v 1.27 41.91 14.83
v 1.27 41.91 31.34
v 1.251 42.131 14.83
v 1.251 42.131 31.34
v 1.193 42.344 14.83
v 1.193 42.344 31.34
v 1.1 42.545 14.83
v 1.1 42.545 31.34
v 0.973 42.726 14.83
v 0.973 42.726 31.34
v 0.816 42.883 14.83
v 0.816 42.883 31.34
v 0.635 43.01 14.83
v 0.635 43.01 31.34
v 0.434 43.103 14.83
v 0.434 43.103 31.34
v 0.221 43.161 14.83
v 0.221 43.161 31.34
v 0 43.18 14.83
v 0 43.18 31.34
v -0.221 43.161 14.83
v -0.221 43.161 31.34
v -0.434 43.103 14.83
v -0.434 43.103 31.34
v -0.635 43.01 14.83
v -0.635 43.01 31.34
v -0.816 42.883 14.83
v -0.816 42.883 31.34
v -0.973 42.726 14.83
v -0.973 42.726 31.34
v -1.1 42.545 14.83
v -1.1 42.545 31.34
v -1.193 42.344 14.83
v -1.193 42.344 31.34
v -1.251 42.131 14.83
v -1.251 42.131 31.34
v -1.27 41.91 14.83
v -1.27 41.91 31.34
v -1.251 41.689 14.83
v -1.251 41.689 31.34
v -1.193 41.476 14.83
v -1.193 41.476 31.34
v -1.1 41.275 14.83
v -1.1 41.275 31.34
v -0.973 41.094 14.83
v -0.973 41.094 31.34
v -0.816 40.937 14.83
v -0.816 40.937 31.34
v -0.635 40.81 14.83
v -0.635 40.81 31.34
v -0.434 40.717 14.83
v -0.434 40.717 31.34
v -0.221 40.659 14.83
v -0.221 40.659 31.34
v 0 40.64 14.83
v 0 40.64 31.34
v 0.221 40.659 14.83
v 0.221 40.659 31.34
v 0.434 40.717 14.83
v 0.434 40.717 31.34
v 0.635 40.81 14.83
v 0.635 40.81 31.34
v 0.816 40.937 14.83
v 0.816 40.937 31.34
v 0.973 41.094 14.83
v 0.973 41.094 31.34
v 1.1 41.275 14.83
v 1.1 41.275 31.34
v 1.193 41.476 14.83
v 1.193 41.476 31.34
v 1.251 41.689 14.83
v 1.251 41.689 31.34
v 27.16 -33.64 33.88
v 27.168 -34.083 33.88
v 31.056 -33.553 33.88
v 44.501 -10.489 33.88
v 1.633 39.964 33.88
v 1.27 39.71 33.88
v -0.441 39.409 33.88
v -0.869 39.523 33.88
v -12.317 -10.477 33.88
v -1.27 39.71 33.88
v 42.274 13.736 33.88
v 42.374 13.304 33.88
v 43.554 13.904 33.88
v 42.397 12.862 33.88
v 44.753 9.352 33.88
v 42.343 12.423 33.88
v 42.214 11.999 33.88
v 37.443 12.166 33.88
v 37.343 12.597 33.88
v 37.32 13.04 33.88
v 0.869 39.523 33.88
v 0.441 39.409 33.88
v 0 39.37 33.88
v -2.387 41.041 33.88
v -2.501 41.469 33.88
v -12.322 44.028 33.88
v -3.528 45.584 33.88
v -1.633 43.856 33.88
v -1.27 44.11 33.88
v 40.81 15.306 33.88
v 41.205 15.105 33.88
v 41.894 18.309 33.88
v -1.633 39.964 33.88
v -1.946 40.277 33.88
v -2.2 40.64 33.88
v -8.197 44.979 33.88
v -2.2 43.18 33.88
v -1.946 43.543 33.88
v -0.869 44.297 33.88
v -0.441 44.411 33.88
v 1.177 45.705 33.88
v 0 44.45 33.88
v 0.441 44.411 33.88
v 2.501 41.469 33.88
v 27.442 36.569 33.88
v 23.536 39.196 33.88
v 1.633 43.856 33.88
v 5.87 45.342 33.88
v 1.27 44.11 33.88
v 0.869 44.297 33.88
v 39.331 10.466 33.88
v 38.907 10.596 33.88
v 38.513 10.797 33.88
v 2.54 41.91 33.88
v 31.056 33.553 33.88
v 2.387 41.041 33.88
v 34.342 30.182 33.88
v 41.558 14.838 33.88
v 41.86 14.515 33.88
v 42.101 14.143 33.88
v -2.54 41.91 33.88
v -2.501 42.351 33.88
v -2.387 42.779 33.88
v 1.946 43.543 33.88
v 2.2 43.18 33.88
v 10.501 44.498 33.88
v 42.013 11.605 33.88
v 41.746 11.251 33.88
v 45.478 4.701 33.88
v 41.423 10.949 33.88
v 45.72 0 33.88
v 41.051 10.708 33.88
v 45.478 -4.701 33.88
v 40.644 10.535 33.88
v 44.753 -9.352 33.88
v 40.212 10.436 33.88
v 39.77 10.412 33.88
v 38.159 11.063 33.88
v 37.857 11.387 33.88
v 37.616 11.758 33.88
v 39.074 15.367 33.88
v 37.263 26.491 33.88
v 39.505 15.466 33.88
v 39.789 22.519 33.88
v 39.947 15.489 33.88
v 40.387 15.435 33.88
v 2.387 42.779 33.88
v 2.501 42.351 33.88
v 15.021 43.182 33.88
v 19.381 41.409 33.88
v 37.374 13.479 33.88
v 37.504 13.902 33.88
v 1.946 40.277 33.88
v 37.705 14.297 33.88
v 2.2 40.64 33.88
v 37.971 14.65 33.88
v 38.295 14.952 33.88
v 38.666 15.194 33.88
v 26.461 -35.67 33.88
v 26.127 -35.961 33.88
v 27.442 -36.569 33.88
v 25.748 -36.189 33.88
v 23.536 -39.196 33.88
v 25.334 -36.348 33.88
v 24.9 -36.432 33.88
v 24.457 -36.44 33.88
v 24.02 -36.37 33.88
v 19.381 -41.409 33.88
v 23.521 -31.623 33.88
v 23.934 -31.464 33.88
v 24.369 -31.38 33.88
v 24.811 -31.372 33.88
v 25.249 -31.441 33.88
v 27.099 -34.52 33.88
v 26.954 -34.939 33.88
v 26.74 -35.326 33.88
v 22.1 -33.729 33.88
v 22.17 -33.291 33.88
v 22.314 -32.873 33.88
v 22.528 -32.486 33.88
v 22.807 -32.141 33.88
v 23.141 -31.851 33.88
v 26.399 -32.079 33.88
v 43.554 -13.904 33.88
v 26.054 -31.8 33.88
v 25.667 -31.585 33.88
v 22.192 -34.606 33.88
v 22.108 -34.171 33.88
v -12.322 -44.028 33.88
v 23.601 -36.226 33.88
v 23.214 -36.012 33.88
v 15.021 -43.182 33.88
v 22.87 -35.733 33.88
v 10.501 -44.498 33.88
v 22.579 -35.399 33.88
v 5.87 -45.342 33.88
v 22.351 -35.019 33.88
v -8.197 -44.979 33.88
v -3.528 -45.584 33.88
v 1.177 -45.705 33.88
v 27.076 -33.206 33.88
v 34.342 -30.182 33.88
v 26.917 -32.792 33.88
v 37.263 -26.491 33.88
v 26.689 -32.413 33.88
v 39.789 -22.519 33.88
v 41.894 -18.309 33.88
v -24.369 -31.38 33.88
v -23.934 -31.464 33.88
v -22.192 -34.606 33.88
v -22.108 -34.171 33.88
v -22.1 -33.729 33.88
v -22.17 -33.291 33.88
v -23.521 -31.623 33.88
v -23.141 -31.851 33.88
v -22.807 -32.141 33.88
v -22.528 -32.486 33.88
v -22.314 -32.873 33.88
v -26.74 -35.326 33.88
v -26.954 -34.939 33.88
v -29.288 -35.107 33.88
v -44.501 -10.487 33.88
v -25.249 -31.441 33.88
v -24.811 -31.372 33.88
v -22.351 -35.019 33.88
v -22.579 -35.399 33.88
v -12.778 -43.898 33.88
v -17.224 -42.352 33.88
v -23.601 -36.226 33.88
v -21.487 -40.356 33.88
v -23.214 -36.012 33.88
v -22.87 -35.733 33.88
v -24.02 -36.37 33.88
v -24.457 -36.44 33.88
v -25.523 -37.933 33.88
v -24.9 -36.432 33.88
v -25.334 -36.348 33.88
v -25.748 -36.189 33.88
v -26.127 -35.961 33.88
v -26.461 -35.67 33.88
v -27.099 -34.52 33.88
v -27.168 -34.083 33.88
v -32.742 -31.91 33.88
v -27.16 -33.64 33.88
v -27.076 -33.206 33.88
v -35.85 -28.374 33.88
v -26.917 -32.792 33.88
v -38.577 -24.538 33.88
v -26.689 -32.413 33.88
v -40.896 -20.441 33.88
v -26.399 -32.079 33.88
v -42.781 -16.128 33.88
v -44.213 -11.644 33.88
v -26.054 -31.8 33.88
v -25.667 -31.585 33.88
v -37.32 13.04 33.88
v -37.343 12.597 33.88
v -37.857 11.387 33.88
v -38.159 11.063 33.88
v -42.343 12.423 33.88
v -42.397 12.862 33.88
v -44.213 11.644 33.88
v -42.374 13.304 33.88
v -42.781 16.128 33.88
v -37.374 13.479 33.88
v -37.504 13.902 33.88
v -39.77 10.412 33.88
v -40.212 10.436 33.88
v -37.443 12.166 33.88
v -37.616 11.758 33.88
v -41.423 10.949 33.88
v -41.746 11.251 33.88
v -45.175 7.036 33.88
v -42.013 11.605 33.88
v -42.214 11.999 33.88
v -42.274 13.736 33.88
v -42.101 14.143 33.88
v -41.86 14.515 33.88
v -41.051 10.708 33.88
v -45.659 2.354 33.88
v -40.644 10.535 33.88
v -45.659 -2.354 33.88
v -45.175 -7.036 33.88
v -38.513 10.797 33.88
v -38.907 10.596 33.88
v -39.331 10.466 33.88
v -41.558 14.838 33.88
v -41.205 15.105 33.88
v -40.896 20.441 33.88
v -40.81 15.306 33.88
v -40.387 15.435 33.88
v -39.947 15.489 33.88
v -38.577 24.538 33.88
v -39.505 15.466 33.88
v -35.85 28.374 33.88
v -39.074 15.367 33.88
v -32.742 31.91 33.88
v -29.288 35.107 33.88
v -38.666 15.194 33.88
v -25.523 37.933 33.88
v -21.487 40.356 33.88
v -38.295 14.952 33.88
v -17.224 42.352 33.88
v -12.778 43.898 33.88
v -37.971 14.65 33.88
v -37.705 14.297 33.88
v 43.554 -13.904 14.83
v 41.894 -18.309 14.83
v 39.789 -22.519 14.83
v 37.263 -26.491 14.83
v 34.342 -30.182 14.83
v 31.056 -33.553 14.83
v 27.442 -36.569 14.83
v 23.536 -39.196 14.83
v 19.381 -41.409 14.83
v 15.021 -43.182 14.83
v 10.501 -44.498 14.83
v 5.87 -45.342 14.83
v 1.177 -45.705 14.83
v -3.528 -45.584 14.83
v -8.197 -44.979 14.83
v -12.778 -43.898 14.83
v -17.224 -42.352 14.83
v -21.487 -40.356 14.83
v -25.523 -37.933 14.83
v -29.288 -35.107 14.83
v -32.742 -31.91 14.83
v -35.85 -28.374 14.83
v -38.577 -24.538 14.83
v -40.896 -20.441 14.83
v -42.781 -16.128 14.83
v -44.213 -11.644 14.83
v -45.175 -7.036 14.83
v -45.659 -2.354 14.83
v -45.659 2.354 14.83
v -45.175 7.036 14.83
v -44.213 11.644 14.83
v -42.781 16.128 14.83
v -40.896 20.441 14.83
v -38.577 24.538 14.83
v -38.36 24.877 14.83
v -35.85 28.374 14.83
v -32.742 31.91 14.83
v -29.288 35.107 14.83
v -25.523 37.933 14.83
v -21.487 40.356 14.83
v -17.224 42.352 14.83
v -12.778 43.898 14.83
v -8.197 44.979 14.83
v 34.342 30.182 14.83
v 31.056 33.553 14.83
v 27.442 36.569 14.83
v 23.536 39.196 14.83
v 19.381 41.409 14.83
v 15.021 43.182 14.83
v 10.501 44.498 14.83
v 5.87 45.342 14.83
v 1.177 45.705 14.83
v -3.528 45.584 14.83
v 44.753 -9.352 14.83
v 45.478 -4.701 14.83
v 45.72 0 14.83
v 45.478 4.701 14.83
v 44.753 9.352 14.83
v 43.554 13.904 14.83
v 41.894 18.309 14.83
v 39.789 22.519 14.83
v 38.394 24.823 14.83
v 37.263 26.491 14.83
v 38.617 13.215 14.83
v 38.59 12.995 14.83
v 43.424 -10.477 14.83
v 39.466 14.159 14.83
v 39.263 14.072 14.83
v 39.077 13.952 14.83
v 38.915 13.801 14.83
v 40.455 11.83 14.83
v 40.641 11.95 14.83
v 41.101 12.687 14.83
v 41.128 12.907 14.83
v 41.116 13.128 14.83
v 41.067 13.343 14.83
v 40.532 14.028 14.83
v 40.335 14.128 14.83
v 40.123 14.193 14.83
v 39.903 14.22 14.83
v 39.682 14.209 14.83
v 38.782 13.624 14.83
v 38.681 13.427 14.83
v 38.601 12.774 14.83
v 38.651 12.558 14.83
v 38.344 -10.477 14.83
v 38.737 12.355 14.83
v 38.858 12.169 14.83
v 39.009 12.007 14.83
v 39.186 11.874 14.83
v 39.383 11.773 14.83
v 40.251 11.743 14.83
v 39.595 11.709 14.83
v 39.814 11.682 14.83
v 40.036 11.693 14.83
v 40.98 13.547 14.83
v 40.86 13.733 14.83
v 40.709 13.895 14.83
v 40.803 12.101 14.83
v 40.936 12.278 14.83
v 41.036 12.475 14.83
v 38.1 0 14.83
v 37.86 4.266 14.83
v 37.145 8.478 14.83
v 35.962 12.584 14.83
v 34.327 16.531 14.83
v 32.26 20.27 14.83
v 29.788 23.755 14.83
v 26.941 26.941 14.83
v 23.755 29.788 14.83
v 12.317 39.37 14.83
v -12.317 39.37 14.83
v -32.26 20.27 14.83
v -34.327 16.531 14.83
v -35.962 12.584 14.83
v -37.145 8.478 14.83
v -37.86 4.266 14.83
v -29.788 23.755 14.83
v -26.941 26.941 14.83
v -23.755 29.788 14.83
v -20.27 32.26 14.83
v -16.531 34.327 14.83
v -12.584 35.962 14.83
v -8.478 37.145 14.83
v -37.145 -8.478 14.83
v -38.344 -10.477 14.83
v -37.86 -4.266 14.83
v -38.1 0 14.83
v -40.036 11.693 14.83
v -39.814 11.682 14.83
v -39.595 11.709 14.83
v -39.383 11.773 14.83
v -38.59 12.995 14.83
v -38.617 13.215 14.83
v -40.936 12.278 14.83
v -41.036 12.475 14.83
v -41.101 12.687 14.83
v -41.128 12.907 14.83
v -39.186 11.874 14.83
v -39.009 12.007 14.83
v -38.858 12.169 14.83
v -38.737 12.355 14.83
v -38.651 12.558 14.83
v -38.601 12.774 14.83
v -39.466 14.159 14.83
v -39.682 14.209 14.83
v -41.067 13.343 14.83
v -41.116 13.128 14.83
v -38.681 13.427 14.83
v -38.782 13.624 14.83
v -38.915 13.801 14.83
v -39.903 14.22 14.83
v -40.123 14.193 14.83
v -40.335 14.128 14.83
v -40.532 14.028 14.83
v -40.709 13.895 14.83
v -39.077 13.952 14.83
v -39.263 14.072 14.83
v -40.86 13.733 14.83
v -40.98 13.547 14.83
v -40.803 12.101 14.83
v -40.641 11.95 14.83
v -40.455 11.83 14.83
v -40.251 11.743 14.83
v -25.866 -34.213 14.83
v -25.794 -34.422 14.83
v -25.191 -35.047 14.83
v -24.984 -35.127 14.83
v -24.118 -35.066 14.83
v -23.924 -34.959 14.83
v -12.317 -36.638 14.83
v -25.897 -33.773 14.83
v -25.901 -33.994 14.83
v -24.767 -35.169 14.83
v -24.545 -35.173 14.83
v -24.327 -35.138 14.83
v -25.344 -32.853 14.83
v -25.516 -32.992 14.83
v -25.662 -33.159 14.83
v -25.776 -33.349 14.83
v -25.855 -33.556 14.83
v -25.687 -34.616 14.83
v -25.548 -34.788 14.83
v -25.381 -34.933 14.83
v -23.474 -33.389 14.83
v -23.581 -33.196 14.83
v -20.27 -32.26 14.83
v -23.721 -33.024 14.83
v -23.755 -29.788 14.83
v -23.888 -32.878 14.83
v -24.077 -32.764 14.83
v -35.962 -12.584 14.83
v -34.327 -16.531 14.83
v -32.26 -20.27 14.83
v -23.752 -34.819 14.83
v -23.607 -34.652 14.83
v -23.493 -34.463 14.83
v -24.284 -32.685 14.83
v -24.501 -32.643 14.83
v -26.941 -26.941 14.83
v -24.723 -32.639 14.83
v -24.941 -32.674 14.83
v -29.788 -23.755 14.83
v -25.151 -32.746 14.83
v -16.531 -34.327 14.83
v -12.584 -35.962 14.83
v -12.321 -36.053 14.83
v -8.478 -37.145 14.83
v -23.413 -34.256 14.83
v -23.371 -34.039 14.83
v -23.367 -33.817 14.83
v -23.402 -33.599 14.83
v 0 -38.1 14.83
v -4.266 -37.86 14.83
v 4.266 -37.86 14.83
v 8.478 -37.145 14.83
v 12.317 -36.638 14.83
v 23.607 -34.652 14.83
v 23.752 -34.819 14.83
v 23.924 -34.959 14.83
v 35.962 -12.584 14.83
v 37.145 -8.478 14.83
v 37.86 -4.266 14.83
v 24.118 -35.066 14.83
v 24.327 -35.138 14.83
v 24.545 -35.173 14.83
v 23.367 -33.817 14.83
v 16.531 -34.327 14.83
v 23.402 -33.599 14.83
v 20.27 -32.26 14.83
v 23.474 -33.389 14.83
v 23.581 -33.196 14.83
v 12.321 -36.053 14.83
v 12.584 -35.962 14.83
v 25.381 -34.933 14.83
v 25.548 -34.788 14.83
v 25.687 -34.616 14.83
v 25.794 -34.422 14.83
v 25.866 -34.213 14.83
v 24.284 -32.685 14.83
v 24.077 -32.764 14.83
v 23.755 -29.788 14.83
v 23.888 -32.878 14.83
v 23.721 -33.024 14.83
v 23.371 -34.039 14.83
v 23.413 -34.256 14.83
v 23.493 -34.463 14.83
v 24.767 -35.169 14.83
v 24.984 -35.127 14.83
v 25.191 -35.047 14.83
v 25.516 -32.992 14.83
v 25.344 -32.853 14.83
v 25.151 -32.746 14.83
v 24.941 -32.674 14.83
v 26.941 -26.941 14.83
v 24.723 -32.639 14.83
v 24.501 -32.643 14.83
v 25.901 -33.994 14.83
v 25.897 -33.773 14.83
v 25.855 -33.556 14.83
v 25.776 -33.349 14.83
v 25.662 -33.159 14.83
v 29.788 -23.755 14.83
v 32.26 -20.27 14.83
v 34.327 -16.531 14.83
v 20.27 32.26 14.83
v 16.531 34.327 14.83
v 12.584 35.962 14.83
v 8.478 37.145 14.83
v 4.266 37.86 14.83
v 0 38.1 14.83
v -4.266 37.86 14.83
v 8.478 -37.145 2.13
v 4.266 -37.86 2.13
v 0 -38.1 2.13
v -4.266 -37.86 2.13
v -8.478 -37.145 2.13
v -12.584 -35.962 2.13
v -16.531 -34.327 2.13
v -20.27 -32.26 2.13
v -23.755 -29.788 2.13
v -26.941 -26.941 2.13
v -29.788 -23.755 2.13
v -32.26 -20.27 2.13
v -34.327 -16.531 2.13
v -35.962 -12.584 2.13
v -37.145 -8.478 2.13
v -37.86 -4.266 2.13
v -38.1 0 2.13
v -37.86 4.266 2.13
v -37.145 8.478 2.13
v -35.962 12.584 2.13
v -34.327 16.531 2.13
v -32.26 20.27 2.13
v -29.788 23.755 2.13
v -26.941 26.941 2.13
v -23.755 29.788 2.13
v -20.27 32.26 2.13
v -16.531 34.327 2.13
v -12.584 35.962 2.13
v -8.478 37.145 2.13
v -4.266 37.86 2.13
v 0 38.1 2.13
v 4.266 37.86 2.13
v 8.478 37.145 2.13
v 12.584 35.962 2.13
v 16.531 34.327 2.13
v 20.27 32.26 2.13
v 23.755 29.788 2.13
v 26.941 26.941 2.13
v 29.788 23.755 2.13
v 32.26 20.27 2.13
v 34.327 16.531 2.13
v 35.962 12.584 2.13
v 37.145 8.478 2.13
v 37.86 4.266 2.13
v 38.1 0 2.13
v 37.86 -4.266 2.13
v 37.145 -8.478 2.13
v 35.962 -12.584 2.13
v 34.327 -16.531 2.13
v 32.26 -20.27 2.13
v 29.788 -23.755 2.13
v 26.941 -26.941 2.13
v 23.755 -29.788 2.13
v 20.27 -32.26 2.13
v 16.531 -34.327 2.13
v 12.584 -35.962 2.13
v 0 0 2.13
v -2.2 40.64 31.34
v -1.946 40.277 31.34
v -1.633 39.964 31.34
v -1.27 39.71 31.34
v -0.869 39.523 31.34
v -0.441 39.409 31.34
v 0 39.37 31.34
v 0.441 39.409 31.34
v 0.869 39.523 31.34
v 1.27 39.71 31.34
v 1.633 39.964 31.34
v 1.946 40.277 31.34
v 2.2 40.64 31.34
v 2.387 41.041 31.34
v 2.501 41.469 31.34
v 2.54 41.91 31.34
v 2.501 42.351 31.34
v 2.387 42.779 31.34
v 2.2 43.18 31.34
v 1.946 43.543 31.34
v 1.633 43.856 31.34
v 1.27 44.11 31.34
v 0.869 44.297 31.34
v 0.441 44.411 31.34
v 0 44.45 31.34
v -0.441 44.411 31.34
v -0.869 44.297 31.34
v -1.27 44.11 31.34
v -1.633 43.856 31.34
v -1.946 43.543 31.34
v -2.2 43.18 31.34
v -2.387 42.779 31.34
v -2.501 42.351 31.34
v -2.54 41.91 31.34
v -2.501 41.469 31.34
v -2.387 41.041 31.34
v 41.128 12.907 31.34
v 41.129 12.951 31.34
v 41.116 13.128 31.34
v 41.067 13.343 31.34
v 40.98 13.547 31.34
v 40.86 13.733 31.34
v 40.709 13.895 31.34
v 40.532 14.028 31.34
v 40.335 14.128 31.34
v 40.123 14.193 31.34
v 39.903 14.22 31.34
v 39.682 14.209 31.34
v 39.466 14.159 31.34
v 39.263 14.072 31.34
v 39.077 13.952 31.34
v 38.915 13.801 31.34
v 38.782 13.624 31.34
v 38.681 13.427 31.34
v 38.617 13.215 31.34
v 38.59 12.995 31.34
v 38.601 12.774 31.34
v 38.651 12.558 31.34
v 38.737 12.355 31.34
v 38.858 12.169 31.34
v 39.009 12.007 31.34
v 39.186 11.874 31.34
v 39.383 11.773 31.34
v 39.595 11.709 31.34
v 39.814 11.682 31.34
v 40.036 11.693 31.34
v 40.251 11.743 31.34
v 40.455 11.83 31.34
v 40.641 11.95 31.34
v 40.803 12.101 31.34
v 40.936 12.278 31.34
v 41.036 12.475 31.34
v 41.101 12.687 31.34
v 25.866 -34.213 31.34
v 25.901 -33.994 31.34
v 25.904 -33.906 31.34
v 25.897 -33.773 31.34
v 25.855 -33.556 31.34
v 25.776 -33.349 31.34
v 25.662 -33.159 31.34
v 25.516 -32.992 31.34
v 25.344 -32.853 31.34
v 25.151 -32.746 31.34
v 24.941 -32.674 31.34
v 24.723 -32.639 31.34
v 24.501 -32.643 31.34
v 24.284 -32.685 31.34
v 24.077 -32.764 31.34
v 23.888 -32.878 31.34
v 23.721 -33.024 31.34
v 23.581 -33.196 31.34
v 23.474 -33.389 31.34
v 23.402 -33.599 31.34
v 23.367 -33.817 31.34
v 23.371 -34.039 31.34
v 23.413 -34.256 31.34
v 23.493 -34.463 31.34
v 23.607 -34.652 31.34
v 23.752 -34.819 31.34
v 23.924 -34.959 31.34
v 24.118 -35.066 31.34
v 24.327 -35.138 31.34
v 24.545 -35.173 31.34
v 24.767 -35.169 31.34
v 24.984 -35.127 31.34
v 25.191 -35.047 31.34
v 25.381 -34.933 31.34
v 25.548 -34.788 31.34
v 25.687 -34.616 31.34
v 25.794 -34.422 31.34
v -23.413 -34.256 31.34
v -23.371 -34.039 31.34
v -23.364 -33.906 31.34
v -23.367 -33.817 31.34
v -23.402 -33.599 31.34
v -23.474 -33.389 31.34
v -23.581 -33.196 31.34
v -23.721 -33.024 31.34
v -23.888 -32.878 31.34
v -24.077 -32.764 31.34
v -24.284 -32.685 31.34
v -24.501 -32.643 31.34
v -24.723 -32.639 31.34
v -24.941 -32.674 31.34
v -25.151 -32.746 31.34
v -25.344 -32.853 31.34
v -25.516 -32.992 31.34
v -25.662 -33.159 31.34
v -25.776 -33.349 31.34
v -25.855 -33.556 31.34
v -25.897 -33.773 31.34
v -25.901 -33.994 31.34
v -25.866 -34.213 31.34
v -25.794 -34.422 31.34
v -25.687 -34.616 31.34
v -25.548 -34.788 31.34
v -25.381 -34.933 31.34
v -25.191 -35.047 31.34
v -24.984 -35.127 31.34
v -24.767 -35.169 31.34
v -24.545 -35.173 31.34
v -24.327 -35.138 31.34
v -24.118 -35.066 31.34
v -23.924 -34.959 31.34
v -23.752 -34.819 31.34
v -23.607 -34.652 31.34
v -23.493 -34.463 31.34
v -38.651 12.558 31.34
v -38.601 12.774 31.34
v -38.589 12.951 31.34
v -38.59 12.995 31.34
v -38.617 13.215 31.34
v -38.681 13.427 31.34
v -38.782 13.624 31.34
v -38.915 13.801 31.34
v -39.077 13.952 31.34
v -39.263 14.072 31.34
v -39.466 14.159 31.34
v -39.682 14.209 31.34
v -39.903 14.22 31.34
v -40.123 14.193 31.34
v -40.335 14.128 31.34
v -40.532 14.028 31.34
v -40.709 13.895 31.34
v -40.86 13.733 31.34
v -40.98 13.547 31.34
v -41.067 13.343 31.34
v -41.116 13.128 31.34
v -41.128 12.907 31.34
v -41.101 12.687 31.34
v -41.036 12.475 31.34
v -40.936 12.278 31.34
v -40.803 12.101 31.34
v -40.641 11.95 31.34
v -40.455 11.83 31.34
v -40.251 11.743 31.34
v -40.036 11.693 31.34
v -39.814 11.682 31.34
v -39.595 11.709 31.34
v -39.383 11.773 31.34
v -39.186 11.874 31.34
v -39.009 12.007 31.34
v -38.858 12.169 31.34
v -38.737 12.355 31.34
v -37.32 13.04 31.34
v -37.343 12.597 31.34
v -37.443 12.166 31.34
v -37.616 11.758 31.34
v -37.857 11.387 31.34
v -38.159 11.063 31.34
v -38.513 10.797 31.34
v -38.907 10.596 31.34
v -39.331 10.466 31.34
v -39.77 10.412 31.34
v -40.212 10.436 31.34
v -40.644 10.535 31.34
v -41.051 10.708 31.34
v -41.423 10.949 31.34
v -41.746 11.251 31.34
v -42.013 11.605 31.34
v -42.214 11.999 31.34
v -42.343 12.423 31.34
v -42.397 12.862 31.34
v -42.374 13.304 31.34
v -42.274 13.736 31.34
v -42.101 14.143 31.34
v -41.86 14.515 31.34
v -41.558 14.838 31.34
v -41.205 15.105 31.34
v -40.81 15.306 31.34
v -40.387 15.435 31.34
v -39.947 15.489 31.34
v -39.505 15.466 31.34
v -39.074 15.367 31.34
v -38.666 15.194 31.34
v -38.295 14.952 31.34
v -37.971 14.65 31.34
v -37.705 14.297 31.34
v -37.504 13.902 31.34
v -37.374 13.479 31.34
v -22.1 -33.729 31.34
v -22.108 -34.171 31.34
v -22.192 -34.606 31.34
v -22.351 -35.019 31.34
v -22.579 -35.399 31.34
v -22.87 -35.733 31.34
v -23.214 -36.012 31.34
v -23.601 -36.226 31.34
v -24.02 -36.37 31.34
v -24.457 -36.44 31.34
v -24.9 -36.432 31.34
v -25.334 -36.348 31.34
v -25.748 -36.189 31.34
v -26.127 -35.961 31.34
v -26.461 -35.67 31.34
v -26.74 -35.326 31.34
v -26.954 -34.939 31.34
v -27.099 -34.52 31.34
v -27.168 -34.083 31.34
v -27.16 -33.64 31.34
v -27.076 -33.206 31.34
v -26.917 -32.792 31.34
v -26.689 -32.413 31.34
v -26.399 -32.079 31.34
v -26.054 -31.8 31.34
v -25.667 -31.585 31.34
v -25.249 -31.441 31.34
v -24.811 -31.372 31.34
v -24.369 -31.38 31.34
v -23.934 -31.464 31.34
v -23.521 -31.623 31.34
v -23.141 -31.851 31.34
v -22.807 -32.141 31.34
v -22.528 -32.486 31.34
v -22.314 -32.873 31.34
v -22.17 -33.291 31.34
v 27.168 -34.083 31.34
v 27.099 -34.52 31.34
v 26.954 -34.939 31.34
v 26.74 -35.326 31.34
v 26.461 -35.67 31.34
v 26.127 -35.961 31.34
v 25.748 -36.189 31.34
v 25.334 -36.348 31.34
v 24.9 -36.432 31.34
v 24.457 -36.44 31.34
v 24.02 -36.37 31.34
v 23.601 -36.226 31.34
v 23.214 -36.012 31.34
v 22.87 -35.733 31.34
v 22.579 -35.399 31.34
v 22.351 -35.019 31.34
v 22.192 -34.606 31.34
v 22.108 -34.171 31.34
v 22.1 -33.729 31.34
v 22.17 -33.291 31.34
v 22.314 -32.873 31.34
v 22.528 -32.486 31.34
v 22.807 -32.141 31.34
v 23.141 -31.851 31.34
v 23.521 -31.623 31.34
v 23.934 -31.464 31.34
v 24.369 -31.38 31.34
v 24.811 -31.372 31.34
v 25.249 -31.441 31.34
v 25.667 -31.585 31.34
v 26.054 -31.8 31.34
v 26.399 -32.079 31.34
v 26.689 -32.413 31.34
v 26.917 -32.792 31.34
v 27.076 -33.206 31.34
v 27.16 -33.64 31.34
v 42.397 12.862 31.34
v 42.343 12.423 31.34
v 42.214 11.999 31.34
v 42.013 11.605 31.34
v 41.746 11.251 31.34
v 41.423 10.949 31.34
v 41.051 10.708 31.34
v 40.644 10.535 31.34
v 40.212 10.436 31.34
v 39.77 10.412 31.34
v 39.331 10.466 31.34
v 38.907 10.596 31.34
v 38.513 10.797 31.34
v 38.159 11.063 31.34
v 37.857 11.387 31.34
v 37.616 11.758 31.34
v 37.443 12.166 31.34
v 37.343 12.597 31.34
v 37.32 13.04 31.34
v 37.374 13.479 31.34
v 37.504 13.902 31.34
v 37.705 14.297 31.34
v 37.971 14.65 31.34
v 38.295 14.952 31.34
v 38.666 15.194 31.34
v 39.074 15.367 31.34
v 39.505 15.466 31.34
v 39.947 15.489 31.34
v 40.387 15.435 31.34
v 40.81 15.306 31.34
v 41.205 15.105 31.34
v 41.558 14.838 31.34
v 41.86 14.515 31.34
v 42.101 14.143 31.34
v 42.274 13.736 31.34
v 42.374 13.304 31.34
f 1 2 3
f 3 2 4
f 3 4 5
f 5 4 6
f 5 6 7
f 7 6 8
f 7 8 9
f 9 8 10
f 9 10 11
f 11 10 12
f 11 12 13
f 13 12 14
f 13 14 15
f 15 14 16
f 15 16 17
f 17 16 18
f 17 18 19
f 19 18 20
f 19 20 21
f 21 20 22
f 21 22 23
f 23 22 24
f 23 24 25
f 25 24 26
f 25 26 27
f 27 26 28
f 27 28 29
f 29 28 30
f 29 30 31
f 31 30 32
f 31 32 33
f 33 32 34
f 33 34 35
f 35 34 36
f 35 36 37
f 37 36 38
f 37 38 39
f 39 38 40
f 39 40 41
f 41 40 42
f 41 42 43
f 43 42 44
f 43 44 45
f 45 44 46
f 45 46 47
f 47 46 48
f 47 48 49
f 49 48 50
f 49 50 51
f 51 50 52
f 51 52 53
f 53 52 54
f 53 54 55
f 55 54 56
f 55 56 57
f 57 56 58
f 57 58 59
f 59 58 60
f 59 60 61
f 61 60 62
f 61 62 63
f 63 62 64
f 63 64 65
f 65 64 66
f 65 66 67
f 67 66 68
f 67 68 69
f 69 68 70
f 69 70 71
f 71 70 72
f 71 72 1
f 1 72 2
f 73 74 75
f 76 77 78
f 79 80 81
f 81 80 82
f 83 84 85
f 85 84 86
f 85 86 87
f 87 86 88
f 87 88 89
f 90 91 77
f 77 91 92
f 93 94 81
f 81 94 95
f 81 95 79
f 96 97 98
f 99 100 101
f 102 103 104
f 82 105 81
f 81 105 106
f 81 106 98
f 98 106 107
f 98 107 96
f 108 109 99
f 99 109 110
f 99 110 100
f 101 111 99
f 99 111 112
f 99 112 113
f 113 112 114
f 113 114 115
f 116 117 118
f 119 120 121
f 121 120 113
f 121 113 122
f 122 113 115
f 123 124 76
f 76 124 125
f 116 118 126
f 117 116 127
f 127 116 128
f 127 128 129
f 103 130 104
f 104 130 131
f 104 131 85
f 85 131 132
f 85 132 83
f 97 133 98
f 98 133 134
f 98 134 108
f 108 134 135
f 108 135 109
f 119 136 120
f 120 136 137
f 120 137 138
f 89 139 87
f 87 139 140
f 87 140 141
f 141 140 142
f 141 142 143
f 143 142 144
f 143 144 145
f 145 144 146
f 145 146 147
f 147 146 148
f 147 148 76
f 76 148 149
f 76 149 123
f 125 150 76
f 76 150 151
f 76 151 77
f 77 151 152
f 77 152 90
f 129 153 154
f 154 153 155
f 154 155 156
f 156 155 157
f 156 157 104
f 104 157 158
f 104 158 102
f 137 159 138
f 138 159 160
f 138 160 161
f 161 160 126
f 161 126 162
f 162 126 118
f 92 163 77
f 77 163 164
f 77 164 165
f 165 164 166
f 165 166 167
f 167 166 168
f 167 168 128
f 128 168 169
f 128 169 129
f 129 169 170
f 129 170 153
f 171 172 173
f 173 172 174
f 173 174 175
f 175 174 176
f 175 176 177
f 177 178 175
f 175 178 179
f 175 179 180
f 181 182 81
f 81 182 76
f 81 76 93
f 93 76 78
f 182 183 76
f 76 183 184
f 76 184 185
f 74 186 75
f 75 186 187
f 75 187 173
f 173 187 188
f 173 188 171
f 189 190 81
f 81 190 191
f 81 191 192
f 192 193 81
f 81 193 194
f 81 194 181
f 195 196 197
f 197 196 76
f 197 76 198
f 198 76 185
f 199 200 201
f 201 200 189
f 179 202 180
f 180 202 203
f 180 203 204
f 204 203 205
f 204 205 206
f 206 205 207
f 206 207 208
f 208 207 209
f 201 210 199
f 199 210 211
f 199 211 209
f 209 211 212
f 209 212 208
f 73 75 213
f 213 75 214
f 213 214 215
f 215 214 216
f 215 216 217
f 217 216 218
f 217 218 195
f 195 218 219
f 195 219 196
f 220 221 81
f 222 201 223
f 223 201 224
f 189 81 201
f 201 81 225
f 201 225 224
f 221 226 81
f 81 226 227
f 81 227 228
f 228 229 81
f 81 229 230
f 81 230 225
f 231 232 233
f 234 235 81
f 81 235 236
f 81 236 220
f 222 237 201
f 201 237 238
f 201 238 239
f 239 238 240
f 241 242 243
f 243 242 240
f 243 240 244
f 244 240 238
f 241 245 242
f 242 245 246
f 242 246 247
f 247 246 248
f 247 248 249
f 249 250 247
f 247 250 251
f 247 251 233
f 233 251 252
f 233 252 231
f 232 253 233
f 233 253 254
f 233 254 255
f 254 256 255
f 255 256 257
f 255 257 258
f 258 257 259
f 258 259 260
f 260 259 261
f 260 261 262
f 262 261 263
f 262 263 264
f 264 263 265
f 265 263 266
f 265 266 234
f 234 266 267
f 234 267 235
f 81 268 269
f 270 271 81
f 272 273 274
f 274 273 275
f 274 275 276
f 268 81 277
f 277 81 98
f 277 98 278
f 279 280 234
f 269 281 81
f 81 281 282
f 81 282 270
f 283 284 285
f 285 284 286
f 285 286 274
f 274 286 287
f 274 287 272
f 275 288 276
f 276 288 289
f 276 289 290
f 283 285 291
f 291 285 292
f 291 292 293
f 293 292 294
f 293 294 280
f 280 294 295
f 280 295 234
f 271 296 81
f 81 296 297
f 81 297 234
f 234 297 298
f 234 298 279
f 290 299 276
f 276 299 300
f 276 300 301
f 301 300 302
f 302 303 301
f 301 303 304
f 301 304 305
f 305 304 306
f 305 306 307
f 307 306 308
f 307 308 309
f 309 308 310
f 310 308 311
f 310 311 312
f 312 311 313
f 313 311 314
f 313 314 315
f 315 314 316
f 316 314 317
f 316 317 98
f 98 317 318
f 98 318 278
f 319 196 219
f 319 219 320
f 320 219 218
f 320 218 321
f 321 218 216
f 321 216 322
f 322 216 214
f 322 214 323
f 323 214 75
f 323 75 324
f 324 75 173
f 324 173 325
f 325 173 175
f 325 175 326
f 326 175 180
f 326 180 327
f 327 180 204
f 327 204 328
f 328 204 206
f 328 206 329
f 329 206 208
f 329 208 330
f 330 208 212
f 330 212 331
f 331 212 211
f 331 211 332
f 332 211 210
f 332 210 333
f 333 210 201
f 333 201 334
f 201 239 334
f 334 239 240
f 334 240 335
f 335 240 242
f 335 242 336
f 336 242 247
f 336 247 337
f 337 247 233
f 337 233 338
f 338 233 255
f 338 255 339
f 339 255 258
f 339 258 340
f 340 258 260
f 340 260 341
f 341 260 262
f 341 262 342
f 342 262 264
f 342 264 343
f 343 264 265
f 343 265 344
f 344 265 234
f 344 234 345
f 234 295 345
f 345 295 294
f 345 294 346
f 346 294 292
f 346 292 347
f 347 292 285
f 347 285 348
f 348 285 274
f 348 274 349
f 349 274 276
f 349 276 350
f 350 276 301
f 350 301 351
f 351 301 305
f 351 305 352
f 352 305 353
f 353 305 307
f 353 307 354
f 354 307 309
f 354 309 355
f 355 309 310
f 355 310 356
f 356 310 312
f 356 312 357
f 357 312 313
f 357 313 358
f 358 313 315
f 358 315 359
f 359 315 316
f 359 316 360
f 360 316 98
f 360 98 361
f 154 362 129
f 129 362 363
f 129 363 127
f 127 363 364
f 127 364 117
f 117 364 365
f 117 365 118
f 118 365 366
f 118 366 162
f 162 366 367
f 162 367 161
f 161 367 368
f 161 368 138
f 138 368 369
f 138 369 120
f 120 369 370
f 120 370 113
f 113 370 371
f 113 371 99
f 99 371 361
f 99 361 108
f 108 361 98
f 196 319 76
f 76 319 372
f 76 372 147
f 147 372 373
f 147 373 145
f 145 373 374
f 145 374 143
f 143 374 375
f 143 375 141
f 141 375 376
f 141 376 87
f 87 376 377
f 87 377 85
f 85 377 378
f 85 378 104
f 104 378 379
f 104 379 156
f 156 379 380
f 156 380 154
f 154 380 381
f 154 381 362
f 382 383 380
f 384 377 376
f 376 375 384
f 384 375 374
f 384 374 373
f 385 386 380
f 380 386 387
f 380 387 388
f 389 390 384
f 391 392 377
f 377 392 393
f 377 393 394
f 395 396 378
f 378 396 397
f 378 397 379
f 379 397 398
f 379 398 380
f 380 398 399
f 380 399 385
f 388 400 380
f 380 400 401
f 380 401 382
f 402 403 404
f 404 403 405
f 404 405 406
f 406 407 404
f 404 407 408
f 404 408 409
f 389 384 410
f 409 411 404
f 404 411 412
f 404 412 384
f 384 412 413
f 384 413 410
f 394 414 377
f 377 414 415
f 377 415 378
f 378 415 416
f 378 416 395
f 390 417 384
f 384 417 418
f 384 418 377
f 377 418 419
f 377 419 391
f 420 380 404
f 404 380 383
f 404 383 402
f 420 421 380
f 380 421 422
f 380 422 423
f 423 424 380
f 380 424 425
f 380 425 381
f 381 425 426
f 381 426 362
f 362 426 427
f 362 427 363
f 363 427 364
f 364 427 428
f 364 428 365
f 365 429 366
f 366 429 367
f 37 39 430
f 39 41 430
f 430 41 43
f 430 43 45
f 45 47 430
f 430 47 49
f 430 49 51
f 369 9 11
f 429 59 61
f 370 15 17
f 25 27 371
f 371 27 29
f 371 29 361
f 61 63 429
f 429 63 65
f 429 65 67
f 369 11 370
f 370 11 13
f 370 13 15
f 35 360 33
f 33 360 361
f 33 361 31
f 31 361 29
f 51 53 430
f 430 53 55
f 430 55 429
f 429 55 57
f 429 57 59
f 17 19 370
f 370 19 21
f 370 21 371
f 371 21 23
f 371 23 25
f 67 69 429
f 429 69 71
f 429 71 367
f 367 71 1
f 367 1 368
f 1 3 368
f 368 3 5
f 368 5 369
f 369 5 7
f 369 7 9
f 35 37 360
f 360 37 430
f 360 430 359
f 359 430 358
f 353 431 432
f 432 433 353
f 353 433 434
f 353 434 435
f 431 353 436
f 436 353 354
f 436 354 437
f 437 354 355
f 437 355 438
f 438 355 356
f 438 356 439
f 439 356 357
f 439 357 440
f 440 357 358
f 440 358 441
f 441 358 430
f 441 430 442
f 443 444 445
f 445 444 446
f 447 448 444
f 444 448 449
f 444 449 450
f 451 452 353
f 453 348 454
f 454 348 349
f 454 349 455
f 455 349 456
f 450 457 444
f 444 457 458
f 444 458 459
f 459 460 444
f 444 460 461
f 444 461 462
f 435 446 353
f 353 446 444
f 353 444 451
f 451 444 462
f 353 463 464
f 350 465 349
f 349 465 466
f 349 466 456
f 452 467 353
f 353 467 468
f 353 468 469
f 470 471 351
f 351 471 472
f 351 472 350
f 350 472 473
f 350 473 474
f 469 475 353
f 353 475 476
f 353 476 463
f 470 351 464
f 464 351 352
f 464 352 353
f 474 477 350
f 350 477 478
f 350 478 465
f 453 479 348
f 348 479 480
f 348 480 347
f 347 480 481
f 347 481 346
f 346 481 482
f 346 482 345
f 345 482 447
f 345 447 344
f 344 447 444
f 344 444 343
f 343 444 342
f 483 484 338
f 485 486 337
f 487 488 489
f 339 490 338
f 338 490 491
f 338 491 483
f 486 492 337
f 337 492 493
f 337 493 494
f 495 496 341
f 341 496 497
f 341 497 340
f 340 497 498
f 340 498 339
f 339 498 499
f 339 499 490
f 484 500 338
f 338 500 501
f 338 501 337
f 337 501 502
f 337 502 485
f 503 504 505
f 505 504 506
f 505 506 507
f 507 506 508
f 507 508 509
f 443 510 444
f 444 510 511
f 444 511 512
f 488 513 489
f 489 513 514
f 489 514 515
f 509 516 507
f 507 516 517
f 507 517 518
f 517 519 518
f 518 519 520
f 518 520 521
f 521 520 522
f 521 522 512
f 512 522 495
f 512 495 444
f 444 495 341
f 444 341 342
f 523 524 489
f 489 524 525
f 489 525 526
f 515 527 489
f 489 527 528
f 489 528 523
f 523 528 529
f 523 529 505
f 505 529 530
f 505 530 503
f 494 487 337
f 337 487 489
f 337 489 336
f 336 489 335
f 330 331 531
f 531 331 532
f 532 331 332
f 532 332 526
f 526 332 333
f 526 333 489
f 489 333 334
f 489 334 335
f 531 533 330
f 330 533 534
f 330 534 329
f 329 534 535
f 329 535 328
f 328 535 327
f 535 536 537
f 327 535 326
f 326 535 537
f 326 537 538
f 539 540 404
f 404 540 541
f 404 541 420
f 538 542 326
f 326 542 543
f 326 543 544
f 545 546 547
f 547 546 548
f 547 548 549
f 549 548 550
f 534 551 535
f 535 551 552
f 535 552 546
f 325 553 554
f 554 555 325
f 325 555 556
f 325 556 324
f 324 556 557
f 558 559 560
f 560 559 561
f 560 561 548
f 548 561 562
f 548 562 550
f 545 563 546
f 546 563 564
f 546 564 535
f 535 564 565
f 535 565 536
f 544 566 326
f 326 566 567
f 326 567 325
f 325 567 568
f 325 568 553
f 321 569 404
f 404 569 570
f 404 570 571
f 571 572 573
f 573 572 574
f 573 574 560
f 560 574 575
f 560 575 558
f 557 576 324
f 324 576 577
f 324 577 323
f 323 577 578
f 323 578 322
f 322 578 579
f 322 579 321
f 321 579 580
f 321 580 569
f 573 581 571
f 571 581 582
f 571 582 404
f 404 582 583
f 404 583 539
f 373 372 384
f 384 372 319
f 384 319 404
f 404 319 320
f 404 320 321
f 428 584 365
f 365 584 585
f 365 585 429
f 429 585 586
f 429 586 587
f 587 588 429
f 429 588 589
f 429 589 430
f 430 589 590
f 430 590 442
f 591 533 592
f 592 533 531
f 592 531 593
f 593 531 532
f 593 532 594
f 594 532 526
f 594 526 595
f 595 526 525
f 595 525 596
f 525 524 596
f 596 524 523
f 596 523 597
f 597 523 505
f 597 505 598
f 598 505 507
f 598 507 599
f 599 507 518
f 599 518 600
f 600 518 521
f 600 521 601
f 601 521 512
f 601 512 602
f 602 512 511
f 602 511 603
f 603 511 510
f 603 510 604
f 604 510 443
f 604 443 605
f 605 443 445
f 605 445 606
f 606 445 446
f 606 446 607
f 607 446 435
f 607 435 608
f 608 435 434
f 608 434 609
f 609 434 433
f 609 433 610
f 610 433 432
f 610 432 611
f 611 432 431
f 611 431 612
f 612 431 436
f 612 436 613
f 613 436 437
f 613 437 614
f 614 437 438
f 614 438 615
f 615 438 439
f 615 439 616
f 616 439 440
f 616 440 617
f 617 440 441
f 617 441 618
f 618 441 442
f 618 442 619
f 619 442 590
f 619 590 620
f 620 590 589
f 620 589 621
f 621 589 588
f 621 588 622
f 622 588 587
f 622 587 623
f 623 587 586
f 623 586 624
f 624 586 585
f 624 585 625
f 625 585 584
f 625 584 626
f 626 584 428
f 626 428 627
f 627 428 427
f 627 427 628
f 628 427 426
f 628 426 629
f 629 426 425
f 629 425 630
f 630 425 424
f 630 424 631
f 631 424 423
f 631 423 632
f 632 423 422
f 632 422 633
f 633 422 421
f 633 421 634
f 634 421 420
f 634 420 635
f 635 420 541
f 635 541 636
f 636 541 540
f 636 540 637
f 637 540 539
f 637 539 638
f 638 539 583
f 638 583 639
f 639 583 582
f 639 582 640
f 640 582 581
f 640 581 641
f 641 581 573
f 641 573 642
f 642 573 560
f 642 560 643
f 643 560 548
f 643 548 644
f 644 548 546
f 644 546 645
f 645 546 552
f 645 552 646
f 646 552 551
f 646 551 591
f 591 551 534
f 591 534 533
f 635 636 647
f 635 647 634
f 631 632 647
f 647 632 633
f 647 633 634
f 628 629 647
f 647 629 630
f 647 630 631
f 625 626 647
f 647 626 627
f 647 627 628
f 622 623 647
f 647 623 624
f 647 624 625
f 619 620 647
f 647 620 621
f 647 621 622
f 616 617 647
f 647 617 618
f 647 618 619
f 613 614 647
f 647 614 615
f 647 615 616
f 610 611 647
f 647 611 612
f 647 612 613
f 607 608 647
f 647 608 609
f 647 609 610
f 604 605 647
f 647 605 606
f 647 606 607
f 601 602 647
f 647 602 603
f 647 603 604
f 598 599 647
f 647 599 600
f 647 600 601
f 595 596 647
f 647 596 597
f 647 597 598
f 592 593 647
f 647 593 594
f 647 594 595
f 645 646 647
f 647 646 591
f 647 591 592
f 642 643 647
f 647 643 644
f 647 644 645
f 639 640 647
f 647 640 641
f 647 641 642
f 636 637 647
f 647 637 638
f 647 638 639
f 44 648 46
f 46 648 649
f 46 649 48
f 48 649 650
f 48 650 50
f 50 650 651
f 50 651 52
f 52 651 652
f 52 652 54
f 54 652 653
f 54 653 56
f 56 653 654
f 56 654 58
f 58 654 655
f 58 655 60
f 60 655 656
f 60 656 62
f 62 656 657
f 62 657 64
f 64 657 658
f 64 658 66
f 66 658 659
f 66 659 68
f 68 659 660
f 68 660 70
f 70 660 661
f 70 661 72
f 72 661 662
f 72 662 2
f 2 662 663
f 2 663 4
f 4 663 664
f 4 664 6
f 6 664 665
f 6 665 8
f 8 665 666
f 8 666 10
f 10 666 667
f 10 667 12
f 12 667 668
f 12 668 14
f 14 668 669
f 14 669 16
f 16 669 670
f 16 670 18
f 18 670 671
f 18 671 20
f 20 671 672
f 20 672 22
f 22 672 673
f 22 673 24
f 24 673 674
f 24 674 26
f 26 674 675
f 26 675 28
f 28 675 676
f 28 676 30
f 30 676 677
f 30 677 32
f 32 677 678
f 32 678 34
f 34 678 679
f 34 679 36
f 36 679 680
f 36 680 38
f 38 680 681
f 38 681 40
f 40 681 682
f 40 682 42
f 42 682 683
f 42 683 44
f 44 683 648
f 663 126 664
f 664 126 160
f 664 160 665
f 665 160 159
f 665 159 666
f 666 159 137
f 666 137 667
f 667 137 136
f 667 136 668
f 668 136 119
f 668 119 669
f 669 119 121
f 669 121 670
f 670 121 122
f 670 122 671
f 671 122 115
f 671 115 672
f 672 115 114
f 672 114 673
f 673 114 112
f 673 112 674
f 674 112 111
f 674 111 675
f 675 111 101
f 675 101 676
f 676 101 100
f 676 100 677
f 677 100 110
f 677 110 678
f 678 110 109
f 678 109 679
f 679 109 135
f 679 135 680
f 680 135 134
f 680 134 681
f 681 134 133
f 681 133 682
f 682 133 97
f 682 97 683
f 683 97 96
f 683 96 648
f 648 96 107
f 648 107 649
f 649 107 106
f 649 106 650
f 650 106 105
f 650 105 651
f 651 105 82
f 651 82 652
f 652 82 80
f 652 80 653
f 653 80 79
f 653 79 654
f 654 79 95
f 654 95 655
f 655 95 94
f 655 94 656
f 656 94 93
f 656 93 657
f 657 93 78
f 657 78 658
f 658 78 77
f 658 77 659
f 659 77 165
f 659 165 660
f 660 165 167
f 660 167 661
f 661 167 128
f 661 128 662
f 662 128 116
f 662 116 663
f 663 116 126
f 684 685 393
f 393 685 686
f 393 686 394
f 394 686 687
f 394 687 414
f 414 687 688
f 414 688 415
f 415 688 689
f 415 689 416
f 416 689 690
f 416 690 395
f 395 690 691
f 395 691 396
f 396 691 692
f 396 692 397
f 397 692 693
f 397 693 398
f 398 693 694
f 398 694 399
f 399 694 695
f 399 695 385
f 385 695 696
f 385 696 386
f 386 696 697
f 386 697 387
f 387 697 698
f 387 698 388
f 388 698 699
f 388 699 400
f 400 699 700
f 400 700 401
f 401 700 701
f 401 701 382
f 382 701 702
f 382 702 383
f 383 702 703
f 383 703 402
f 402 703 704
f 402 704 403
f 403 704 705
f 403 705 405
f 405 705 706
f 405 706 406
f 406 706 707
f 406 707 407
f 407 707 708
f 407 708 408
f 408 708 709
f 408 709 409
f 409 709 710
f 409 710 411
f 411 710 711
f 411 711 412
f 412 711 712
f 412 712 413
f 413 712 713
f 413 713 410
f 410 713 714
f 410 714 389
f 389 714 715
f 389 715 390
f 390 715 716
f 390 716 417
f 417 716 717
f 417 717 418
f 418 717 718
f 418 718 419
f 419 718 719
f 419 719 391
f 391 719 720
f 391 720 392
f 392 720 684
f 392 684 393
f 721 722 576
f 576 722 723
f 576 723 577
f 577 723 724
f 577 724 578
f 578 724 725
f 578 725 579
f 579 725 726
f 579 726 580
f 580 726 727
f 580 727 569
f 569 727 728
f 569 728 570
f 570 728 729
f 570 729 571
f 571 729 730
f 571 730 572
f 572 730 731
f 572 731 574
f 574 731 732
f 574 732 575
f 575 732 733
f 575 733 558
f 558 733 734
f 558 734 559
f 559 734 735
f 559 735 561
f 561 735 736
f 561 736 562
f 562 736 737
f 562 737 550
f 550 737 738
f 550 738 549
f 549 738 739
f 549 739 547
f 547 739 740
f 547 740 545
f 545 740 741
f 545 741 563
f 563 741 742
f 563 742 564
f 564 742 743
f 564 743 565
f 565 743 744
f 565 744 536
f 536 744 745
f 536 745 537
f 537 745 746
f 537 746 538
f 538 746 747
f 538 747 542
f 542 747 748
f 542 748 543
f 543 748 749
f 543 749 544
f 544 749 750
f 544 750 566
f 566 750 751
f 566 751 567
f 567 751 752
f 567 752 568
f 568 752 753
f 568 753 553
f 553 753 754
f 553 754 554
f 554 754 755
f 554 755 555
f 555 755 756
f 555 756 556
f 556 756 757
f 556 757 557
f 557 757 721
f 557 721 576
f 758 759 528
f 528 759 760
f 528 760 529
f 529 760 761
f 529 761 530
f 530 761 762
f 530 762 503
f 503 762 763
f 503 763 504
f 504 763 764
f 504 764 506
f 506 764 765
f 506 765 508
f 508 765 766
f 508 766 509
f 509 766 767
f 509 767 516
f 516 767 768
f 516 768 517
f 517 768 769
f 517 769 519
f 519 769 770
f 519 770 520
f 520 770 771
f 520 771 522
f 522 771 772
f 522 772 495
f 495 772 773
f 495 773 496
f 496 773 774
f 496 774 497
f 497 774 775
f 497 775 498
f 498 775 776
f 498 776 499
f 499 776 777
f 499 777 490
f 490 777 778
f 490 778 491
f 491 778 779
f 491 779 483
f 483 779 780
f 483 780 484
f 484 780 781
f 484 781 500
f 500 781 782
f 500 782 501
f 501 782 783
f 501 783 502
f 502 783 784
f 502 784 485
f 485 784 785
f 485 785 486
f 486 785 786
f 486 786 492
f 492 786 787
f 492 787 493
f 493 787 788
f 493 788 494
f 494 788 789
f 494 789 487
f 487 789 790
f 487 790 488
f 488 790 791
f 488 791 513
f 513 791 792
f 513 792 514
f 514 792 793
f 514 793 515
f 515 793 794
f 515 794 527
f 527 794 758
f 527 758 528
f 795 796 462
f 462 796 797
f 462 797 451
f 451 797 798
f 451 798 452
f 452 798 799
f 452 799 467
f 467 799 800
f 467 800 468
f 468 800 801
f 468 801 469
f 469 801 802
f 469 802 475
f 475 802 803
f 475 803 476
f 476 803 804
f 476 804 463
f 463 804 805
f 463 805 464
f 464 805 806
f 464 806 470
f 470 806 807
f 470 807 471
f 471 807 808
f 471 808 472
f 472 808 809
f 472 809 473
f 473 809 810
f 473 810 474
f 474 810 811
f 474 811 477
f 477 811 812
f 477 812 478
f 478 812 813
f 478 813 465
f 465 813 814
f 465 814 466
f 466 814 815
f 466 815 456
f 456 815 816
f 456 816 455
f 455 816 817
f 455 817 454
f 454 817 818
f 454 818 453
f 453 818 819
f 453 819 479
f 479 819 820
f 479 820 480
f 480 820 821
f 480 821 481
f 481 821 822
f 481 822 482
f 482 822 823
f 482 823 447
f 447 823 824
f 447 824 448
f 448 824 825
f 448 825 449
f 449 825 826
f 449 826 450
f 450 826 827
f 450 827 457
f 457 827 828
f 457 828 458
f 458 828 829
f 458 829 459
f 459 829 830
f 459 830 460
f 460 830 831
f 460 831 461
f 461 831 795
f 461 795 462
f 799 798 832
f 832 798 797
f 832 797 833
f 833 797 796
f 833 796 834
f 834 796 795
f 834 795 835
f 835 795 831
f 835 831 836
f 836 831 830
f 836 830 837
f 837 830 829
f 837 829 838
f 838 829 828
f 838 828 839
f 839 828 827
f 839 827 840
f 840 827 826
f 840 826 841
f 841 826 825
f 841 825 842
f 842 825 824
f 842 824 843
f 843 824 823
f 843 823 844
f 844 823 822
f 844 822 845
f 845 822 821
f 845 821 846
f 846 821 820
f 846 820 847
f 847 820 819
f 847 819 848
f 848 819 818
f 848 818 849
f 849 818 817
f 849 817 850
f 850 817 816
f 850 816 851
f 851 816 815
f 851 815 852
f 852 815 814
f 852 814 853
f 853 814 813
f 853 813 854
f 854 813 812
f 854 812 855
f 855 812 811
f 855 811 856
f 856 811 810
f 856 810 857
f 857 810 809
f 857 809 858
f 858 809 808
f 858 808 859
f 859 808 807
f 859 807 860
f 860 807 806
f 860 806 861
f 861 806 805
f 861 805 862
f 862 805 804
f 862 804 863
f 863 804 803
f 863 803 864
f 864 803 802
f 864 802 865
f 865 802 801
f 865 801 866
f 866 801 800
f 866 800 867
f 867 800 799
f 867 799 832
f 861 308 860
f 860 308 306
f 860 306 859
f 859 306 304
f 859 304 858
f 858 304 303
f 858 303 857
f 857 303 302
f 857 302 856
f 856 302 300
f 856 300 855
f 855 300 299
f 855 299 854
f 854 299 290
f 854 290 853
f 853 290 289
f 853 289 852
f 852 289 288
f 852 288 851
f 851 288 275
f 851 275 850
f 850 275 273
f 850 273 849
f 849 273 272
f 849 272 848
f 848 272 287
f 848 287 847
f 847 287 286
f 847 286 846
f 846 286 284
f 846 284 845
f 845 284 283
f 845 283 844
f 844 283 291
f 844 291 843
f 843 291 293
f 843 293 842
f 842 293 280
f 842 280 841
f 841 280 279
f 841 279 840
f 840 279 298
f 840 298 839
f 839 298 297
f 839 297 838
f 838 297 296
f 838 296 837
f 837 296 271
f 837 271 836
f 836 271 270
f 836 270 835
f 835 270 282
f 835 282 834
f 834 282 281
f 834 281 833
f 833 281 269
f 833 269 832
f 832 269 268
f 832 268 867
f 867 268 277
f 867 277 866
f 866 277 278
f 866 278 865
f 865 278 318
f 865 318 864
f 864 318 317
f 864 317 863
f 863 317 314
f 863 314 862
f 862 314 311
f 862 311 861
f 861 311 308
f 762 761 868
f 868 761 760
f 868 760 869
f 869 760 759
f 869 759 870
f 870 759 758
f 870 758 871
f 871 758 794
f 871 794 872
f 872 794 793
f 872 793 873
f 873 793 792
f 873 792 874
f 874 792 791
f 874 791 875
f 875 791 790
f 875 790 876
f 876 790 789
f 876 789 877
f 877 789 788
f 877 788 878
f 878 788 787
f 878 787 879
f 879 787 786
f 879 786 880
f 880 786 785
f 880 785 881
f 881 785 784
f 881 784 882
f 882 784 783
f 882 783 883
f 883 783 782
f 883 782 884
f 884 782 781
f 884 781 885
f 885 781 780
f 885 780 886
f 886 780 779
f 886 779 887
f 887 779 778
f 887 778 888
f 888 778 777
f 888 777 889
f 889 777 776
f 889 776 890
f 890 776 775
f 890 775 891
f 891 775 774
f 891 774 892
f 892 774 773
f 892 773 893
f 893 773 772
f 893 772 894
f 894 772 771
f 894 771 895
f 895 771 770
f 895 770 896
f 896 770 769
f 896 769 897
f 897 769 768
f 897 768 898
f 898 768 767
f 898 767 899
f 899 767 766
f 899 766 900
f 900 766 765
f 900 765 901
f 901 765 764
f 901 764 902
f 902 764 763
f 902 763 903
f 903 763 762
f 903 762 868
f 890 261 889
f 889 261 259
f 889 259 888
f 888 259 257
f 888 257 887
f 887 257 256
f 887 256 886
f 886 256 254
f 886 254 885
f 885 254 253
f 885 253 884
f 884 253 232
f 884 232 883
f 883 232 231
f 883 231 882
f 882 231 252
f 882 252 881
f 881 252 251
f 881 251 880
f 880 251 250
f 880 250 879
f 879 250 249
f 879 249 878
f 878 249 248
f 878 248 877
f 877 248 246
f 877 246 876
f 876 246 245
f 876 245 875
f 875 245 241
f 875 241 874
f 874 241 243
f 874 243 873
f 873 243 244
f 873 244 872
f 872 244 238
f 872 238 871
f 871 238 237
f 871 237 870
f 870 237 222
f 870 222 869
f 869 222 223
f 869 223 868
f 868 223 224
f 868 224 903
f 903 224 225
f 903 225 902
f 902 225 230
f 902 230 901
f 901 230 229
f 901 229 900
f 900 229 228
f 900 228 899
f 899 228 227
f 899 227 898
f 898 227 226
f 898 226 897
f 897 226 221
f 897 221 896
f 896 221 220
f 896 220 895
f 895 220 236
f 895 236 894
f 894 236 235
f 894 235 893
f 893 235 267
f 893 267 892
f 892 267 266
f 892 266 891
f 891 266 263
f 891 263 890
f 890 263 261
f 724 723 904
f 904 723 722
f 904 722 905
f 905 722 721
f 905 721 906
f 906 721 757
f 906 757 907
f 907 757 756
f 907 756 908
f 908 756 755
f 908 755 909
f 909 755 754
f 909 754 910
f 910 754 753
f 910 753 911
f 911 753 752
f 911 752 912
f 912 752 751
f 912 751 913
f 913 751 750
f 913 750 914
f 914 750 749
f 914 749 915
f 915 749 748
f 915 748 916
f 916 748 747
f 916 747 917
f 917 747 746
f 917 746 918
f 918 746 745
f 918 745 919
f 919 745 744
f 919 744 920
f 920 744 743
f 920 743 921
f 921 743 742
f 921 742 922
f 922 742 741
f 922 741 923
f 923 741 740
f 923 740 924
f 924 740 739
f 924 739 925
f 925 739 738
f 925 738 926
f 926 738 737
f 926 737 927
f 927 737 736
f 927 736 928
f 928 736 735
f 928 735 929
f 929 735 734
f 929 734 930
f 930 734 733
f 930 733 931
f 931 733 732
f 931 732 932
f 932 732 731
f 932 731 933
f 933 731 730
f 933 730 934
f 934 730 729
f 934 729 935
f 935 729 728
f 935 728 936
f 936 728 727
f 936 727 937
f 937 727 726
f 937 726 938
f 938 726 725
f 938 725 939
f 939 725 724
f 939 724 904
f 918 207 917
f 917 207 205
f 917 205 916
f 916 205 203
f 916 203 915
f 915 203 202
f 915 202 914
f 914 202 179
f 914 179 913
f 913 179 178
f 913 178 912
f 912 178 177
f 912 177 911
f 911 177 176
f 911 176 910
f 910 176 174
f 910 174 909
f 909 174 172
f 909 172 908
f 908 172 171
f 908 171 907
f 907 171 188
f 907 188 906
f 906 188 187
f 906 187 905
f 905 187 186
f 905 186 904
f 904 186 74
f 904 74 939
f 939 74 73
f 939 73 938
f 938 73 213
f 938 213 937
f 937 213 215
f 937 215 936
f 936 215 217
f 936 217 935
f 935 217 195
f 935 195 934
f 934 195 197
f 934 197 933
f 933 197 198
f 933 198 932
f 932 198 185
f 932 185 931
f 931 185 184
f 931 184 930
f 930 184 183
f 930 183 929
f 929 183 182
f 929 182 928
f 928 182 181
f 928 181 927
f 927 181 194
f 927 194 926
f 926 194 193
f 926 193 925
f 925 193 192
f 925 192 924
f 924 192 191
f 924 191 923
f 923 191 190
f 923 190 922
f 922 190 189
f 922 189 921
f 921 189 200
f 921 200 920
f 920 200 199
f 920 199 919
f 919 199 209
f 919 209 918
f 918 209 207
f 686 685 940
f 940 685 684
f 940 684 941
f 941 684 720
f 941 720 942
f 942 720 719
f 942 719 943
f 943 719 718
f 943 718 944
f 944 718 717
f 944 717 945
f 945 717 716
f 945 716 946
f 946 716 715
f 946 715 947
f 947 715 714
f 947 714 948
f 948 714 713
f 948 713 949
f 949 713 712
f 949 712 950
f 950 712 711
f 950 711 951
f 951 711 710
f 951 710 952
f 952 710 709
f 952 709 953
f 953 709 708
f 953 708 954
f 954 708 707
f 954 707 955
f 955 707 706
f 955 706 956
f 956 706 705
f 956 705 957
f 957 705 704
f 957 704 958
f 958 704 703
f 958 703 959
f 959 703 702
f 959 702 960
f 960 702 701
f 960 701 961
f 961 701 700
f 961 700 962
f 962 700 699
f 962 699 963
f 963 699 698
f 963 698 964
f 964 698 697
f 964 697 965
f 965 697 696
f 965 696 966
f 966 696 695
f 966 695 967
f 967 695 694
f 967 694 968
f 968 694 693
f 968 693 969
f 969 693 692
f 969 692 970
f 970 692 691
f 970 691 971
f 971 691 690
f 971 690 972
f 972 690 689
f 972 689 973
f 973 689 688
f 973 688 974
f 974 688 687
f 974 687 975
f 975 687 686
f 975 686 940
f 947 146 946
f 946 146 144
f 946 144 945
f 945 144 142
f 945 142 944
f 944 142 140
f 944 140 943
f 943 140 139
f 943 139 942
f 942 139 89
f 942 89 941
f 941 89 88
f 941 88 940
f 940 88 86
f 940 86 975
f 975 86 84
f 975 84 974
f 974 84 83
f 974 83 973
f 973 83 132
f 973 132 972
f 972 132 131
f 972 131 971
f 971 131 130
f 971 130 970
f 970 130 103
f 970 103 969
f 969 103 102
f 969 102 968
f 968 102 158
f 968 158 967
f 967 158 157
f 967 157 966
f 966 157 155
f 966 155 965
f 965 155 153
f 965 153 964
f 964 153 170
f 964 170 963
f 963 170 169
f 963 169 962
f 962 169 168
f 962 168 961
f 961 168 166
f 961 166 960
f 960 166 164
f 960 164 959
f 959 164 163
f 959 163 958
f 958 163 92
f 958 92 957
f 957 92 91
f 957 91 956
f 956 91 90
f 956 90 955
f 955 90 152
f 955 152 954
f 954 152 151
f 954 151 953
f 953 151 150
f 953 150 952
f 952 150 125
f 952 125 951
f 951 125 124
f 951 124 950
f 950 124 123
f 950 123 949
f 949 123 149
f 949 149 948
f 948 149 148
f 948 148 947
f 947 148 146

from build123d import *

# Parameters (mm, degrees)
SKETCH2_R          = 1.27
CUT_EXTRUDE1_DEPTH = 27.94
SKETCH3_R          = 2.54
CUT_EXTRUDE5_DEPTH = 2.54
CIRPATTERN1_COUNT  = 5


with BuildPart() as part:
    # Sketch1 → Revolve1 (revolve)
    with BuildSketch(Plane.YZ, mode=Mode.PRIVATE) as revolve1_sk:
        Polygon((0, 33.880456026), (-45.72, 33.880456026), (-45.72, 14.830456026), (-38.1, 14.830456026), (-38.1, 2.130456026), (0, 2.130456026), align=None)
    revolve(revolve1_sk.sketch.rotate(Axis((0, 0, 48.959120521), (0, 0, -1)), 270), axis=Axis((0, 0, 48.959120521), (0, 0, -1)))

    # Sketch2 → Cut-Extrude1 (cut)
    with BuildSketch(Plane.XY.offset(33.880456026)):
        with Locations((0, 41.91)):
            Circle(SKETCH2_R)
    cut_extrude1 = extrude(amount=-CUT_EXTRUDE1_DEPTH, mode=Mode.SUBTRACT)

    # Sketch3 → Cut-Extrude5 (cut)
    with BuildSketch(Plane.XY.offset(33.880456026)):
        with Locations((0, 41.91)):
            Circle(SKETCH3_R)
    cut_extrude5 = extrude(amount=-CUT_EXTRUDE5_DEPTH, mode=Mode.SUBTRACT)

    # CirPattern1: Cut-Extrude1, Cut-Extrude5 ×5 about axis
    cirpattern1_axis = Axis((0, 0, 0), (0, 0, 1))
    add([cut_extrude1.rotate(cirpattern1_axis, i * 360 / CIRPATTERN1_COUNT) for i in range(1, CIRPATTERN1_COUNT)], mode=Mode.SUBTRACT)
    add([cut_extrude5.rotate(cirpattern1_axis, i * 360 / CIRPATTERN1_COUNT) for i in range(1, CIRPATTERN1_COUNT)], mode=Mode.SUBTRACT)


solid = part.part
